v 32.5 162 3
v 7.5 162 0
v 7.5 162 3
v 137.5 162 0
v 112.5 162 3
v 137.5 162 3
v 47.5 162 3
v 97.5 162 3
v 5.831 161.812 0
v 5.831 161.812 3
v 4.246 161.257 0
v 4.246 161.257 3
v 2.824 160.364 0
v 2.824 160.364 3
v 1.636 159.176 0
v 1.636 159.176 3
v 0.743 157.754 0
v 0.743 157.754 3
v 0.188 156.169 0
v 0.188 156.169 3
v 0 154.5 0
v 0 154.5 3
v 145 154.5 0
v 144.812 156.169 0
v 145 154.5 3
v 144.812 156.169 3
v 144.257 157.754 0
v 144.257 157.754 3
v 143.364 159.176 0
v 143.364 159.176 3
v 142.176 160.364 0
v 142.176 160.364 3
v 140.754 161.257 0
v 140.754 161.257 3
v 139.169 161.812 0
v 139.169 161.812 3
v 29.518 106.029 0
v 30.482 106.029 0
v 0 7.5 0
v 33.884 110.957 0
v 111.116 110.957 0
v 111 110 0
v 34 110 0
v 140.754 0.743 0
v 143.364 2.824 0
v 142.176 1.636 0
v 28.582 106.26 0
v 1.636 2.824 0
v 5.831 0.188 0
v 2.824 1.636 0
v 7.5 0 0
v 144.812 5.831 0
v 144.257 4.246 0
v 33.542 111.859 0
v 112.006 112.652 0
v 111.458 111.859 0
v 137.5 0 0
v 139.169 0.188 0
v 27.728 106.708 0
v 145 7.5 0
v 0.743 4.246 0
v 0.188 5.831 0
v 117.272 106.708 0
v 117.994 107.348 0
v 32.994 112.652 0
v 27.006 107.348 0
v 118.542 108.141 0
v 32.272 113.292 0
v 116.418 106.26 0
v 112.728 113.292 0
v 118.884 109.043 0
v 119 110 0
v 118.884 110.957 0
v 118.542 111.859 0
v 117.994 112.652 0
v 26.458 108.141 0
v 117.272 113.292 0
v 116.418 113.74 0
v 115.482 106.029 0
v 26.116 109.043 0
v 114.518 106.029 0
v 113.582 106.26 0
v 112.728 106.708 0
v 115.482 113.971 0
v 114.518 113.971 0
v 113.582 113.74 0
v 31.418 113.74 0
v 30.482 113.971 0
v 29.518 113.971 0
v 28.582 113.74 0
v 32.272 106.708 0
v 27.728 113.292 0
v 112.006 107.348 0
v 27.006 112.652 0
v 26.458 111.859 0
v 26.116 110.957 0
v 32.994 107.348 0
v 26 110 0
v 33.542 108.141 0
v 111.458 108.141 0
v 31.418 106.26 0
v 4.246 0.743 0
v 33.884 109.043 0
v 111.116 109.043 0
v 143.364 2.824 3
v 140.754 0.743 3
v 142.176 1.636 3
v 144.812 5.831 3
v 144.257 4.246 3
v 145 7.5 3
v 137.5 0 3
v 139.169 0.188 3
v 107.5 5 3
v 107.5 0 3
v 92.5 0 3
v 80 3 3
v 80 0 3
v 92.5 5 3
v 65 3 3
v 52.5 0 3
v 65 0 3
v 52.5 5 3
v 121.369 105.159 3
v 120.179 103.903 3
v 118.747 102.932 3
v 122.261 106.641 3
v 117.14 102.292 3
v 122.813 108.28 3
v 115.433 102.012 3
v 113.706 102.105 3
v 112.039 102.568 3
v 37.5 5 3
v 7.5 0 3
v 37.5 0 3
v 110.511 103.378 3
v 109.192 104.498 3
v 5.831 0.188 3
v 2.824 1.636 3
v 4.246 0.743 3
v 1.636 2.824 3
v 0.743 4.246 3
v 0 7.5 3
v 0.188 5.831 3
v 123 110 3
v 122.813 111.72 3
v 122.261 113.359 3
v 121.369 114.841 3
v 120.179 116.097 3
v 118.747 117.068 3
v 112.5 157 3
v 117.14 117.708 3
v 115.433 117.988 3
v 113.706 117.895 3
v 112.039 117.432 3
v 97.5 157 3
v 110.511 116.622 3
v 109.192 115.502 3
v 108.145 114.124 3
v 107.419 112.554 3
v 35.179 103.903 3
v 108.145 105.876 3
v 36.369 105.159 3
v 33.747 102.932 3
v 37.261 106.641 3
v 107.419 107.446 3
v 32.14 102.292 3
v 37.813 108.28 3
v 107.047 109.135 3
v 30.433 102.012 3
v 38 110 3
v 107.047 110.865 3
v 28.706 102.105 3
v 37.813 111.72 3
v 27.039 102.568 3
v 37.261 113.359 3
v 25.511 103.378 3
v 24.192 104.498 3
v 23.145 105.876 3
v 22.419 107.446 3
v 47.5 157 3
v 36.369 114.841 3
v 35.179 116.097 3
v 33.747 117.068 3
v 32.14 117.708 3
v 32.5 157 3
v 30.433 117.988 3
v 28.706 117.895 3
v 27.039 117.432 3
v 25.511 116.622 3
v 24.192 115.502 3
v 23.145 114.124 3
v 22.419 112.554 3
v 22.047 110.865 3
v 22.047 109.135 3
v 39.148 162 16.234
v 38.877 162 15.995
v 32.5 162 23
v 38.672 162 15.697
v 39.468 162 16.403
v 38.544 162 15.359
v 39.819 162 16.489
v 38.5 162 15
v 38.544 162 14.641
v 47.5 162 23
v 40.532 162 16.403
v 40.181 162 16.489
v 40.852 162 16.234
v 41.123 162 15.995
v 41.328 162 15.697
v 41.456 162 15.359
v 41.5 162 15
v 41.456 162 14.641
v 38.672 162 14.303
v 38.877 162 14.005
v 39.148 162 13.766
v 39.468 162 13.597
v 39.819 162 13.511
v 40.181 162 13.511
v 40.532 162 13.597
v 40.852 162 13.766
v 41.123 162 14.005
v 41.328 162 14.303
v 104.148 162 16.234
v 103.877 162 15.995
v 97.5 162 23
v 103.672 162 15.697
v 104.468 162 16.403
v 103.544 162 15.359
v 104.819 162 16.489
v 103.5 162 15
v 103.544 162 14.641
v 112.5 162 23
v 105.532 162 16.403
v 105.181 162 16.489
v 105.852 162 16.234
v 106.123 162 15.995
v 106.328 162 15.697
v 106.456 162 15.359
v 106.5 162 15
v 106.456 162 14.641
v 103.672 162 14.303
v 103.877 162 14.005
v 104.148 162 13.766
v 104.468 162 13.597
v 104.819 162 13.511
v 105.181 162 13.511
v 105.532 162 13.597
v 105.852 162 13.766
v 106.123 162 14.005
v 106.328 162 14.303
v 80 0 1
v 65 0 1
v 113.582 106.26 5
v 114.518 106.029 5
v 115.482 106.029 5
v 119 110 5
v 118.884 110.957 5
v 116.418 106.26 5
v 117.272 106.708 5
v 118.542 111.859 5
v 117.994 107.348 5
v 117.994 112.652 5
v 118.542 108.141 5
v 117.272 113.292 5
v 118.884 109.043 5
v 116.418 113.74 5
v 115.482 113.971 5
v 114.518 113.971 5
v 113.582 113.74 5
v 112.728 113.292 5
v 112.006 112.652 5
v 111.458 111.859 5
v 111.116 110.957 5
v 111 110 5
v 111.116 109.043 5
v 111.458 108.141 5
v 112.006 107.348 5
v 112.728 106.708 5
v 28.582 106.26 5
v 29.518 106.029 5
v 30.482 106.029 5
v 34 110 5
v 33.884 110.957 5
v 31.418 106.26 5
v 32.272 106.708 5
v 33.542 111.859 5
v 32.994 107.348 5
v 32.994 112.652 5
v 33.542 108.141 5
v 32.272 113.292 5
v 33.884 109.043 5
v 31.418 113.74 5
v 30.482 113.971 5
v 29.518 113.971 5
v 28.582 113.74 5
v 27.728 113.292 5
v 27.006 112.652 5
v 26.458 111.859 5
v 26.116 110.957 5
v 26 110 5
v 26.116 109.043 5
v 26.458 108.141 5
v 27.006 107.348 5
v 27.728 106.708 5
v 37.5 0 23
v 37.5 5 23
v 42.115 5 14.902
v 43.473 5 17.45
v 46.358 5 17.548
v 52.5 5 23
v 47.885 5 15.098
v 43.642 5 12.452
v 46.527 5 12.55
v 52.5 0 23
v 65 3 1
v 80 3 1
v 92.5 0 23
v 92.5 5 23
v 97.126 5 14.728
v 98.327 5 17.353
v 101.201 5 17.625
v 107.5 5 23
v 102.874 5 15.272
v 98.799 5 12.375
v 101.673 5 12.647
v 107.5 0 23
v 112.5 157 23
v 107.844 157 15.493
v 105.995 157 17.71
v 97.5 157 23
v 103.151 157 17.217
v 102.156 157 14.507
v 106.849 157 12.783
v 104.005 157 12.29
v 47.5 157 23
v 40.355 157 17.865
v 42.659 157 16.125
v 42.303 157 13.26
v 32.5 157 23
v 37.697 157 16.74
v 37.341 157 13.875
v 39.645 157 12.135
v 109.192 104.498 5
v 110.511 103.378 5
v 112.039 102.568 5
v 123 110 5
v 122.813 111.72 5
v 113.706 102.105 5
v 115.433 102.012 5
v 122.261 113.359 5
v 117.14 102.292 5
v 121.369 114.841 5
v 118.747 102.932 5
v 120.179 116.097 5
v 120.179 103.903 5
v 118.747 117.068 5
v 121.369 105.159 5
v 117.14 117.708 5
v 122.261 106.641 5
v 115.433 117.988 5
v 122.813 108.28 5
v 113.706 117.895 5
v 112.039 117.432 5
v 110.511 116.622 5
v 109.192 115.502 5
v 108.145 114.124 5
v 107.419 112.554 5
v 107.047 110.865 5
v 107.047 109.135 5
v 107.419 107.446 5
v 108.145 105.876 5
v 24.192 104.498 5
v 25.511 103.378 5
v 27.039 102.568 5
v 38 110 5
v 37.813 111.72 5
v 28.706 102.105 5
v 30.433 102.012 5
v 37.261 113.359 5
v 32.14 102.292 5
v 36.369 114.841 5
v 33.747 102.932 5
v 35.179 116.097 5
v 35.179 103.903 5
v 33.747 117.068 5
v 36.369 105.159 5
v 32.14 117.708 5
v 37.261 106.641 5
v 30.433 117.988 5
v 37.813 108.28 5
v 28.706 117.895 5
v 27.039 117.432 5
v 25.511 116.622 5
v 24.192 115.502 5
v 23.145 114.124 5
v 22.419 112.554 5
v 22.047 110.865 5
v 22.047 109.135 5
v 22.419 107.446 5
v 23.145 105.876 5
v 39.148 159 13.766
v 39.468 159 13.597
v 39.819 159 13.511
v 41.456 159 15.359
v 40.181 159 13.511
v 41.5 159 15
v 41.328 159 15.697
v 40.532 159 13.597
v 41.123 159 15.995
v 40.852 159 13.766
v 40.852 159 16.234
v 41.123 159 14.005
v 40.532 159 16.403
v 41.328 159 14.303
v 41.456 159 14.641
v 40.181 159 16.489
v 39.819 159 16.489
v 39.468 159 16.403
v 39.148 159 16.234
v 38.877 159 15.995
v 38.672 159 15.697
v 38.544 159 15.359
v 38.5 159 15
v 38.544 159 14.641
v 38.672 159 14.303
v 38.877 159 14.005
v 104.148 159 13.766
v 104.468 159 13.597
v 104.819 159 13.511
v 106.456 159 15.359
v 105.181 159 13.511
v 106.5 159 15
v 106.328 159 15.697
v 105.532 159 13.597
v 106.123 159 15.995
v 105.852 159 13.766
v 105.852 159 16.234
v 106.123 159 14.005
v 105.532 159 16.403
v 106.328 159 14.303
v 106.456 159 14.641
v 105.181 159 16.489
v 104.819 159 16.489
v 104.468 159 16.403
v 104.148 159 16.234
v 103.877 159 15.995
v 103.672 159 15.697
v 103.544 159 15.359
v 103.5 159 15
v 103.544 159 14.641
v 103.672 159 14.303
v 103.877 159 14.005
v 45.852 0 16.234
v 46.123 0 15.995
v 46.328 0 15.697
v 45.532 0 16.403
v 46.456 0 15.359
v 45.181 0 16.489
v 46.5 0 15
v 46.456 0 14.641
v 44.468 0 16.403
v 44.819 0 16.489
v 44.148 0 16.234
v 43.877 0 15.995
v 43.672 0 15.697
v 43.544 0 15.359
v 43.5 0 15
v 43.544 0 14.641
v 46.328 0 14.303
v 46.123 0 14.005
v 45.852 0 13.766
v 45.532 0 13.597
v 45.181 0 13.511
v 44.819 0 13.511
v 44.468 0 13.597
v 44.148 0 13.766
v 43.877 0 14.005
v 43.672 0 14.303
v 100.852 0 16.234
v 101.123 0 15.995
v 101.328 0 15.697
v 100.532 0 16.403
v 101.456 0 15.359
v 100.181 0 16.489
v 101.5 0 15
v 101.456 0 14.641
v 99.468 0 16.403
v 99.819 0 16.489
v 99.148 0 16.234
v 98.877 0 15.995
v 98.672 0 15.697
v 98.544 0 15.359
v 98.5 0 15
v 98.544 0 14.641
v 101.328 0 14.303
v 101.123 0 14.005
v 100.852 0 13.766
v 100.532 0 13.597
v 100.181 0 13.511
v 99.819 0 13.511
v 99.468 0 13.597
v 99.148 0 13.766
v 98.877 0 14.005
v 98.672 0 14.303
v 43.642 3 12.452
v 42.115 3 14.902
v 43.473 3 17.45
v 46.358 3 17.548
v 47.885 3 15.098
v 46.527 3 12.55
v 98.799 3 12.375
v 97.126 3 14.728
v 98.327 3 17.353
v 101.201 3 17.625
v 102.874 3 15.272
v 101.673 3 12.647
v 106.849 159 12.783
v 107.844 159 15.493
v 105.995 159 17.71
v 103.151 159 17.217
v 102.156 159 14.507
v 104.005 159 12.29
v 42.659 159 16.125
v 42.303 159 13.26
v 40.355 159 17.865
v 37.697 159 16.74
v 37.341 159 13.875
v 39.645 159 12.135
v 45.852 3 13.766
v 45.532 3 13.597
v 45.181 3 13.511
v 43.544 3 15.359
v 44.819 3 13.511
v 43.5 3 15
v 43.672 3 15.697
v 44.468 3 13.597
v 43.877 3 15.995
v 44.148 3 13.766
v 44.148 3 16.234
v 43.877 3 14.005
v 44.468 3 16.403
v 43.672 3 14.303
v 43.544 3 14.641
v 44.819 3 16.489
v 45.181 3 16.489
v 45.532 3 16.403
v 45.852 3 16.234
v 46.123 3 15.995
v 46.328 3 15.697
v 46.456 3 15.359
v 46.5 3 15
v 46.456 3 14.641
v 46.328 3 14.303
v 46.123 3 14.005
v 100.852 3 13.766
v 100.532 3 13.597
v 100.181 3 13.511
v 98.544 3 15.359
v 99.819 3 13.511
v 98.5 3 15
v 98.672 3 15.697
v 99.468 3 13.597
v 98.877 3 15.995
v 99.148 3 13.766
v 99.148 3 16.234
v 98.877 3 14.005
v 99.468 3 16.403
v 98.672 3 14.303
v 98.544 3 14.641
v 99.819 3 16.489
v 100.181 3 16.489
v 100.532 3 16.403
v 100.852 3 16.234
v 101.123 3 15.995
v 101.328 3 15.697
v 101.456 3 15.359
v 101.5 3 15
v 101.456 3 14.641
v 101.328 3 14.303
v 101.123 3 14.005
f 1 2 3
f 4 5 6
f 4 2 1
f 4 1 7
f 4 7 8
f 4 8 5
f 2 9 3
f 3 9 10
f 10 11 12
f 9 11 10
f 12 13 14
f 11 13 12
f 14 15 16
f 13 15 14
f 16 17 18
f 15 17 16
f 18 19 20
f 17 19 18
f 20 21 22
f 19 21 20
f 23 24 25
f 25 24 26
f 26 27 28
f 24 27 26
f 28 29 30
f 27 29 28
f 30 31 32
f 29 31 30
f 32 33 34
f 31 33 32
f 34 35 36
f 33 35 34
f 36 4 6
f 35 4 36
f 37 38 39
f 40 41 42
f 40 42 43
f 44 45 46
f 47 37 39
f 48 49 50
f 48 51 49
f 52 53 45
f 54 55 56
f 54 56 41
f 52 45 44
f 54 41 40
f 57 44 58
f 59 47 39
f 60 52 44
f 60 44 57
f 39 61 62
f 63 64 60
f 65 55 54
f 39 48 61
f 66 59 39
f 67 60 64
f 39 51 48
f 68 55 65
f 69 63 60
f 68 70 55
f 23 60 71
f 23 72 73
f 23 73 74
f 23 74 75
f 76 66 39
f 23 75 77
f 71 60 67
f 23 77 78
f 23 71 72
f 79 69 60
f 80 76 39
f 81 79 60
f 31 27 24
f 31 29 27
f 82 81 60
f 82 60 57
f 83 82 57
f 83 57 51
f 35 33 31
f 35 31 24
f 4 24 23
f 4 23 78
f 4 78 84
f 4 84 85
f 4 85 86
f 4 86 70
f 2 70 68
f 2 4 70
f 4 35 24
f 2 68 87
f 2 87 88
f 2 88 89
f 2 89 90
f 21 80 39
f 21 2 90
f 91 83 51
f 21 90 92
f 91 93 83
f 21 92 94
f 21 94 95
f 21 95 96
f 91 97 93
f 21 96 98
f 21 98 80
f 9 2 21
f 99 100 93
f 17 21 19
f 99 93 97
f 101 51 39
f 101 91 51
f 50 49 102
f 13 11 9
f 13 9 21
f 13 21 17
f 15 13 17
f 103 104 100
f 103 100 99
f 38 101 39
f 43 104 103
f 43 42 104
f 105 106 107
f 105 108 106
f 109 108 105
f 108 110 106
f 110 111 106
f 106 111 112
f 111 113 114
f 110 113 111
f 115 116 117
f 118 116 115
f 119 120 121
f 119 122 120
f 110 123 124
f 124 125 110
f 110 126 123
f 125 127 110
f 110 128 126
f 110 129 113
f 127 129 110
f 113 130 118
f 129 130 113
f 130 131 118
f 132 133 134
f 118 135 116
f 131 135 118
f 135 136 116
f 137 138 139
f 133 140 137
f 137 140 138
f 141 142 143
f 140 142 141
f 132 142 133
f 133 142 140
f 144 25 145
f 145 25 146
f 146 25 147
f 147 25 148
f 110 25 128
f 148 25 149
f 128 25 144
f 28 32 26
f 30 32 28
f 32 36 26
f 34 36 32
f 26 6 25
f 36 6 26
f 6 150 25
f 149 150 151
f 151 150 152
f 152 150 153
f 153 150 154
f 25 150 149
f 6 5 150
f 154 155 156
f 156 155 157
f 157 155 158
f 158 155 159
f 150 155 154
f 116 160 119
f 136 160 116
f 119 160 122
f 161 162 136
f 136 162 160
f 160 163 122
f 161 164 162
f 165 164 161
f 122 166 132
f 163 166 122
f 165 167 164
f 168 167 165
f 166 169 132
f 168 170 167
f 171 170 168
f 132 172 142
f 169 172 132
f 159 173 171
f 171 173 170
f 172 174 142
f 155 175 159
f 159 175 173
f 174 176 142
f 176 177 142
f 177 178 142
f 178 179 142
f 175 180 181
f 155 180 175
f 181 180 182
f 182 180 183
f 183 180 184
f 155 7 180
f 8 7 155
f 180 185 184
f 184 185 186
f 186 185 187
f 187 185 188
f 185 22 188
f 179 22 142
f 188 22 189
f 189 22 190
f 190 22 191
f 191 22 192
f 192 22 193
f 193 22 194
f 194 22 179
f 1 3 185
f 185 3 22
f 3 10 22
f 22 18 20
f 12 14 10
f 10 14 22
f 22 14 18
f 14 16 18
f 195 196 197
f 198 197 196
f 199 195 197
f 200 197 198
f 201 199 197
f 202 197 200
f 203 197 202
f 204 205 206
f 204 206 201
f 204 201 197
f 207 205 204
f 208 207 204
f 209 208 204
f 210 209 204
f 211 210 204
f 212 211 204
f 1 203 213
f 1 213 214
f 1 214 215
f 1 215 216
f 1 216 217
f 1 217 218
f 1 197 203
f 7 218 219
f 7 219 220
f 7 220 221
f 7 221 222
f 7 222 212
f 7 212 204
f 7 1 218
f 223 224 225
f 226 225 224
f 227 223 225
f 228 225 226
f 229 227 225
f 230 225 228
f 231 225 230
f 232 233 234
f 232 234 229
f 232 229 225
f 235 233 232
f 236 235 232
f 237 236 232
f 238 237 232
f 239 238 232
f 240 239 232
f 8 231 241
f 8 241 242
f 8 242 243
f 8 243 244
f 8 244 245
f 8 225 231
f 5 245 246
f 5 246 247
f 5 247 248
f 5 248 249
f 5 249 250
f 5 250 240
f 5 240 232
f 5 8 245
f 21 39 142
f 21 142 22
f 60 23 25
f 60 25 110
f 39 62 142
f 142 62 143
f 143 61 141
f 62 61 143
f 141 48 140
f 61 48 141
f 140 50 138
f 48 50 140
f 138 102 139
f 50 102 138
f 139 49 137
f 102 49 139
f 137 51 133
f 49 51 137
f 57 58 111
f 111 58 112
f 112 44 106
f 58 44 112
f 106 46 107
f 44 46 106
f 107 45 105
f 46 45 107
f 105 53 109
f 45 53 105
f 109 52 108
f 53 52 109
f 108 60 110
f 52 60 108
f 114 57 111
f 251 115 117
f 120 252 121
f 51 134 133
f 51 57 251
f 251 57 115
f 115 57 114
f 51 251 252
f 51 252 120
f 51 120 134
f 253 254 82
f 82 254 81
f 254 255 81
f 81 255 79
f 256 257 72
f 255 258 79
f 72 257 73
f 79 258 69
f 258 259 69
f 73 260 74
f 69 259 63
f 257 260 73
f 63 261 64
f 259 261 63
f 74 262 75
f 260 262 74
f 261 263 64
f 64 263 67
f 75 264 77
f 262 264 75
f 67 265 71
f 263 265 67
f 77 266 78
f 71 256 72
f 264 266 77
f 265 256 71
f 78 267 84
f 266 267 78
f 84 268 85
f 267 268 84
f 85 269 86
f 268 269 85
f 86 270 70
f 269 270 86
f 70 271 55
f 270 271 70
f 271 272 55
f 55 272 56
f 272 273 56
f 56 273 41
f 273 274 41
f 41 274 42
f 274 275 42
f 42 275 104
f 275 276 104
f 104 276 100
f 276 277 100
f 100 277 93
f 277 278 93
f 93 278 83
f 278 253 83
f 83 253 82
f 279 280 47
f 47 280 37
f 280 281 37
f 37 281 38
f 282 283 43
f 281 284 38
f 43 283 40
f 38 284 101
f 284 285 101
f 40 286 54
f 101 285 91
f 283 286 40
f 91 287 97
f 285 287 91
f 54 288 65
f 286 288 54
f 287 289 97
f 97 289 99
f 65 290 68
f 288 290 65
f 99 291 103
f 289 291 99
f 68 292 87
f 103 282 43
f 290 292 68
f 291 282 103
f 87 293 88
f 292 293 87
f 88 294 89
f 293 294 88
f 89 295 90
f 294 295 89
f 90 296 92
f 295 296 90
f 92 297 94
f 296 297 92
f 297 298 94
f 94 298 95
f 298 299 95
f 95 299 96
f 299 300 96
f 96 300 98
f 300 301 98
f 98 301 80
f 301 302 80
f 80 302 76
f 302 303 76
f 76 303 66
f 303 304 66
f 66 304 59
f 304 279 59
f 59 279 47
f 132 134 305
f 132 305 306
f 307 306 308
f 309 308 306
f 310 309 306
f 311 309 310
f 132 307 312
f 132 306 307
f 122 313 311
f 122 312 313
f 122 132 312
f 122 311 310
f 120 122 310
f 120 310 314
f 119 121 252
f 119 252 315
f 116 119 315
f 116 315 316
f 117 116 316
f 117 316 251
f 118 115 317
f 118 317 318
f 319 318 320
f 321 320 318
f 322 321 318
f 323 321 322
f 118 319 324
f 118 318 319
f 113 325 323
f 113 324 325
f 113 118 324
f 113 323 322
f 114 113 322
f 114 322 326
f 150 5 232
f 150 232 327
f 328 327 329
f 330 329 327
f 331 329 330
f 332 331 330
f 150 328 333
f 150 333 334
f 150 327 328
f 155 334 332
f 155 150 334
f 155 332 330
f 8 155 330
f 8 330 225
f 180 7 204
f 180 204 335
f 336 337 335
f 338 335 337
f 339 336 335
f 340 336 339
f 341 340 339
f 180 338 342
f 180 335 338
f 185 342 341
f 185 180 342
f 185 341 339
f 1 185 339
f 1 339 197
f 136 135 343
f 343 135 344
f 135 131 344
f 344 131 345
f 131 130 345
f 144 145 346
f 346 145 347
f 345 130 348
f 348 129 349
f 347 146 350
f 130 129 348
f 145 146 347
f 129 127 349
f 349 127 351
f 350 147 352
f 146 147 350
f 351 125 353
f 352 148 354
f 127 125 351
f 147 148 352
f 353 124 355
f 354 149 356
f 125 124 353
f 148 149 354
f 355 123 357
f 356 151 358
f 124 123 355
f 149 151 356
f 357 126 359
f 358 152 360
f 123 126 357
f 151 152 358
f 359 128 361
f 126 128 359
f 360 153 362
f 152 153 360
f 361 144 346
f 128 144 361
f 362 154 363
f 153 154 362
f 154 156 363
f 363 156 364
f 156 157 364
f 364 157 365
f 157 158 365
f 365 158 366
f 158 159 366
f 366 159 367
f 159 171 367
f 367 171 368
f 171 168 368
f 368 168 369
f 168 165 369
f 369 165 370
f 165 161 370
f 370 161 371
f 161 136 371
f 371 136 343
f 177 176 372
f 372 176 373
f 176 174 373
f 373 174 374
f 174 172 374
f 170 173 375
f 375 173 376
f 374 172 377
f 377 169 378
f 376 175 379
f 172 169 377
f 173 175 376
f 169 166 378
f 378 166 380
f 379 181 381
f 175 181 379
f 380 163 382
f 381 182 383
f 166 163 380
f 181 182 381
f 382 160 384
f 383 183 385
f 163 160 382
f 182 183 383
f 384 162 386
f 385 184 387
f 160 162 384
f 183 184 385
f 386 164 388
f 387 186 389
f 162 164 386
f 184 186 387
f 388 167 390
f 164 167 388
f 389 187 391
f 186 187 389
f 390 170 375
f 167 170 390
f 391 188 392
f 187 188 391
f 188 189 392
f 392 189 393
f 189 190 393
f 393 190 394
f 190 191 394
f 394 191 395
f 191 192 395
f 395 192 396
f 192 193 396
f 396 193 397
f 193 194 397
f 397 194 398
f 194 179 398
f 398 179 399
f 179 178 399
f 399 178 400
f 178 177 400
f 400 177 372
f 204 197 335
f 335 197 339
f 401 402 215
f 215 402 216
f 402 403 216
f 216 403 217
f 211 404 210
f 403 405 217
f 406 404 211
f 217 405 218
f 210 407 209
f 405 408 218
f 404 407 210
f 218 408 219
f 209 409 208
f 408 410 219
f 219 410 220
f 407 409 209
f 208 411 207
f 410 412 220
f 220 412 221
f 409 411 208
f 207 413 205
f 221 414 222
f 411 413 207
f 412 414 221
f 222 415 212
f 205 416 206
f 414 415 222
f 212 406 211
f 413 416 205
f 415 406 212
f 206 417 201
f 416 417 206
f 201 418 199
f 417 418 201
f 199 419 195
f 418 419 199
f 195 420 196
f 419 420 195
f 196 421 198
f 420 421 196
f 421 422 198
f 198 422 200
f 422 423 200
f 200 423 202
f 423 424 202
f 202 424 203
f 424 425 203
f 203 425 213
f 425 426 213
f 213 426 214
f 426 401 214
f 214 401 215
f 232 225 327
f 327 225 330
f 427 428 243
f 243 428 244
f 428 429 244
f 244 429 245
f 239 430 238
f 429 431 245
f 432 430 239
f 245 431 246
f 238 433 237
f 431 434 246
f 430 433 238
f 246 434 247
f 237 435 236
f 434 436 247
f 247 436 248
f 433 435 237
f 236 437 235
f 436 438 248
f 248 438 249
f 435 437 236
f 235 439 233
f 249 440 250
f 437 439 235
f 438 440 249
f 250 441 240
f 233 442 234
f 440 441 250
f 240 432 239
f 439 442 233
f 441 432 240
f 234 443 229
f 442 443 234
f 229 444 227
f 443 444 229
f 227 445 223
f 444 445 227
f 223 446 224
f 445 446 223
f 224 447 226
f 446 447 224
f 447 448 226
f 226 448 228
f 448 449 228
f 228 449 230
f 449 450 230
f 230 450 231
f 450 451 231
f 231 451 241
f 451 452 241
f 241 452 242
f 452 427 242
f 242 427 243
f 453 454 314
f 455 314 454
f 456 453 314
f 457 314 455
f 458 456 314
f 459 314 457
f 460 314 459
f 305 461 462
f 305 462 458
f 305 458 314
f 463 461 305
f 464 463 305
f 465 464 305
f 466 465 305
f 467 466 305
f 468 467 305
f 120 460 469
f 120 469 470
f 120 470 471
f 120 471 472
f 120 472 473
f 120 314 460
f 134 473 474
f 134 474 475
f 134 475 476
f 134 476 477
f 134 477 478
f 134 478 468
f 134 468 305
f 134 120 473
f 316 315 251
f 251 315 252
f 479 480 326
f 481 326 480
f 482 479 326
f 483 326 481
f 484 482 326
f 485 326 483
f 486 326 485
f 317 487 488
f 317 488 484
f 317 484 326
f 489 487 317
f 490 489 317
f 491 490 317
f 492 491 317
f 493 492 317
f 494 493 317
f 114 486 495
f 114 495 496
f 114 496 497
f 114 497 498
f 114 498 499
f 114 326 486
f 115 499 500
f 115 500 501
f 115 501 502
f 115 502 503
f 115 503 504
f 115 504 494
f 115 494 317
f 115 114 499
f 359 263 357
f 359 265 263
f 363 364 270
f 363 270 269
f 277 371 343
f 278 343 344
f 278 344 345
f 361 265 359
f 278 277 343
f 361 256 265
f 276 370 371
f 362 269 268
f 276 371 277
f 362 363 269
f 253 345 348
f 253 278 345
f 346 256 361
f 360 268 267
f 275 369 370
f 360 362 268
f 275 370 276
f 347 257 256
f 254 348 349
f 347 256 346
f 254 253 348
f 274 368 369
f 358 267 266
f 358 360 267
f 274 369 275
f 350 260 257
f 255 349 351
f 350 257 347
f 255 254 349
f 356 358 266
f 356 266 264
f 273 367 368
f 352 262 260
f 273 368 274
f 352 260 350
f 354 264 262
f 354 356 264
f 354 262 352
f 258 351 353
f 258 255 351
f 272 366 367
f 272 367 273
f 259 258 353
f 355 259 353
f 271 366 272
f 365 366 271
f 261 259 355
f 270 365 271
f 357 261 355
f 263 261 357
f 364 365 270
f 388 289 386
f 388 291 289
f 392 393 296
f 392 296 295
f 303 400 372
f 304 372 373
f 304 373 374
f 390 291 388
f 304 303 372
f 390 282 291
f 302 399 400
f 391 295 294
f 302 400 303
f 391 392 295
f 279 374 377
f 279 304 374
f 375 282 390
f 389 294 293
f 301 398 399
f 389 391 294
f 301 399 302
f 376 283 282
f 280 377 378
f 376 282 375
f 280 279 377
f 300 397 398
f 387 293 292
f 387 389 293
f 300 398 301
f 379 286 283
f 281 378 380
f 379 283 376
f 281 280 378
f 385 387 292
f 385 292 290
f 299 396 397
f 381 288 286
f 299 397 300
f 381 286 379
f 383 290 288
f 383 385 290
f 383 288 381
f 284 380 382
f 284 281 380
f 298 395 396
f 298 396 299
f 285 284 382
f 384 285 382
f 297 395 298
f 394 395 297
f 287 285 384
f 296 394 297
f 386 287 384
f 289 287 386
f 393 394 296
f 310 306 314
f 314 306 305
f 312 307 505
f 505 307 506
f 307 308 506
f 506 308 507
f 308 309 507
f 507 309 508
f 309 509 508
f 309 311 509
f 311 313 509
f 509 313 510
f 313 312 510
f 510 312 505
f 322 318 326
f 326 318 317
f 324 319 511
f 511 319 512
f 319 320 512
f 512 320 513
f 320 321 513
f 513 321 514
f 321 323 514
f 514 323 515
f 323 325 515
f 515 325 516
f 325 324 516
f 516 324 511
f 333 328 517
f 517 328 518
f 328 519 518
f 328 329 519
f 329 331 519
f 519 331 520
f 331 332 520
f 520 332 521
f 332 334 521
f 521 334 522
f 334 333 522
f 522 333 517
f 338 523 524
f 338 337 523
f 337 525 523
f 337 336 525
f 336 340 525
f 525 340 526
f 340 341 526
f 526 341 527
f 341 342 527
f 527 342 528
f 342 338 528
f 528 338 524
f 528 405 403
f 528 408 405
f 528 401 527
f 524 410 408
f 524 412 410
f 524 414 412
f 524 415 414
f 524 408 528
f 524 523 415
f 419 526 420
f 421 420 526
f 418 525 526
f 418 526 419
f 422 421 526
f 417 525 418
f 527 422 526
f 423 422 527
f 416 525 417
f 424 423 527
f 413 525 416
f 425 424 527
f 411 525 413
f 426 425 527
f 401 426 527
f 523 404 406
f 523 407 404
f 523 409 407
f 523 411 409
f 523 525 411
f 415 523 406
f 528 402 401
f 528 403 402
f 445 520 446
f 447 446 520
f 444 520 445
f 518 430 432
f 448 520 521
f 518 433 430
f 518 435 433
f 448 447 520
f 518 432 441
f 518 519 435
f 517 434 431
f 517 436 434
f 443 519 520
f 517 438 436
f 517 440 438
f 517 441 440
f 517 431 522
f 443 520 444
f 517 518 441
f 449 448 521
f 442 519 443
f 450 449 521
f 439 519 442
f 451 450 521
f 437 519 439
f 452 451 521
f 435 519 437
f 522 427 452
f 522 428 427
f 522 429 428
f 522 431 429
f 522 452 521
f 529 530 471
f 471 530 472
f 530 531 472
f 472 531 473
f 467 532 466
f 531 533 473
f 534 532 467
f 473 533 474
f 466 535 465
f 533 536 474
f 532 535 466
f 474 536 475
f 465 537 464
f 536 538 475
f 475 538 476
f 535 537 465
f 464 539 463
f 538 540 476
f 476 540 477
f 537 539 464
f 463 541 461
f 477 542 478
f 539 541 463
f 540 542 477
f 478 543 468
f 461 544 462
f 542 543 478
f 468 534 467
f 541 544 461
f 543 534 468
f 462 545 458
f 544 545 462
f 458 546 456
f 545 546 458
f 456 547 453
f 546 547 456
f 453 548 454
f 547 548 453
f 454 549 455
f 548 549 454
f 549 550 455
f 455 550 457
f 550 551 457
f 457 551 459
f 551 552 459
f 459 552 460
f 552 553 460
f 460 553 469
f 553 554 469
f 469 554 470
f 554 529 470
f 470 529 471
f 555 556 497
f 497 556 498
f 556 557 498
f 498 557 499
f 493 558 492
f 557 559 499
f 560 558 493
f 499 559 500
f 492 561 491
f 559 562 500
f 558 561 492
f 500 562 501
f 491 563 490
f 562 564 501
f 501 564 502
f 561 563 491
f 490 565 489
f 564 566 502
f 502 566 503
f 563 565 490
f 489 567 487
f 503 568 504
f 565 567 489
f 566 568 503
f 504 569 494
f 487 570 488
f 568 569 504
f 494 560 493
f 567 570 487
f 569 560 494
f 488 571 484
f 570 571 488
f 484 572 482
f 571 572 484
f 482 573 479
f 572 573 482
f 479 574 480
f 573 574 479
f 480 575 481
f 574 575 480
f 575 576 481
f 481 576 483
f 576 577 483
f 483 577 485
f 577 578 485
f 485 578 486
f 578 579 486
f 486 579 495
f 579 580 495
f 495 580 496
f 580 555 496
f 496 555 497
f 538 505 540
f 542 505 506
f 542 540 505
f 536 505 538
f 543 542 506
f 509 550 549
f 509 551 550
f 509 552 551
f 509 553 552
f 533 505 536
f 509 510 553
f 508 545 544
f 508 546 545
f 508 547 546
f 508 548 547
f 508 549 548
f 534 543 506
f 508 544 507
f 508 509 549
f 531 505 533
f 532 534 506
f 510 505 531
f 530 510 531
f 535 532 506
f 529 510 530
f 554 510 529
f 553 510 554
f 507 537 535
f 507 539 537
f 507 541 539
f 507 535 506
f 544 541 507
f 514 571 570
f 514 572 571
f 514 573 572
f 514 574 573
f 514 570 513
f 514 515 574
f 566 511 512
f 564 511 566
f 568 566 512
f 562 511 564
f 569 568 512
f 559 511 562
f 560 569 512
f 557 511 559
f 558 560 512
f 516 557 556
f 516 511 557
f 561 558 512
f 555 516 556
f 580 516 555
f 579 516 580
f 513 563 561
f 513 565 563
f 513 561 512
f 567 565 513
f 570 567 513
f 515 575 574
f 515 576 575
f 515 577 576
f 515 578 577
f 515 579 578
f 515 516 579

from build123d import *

# Parameters (mm, degrees)
PAD_DEPTH       = 3
SKETCH001_W     = 15
SKETCH001_H     = 3
POCKET_DEPTH    = 2
SKETCH002_R     = 8
PAD001_DEPTH    = 2
SKETCH003_R     = 4
POCKET001_DEPTH = 5
SKETCH004_W     = 15
SKETCH004_H     = 5
PAD002_DEPTH    = 20
POCKET002_DEPTH = 2
SKETCH006_R     = 1.5
POCKET003_DEPTH = 5
POCKET004_DEPTH = 2
SKETCH008_R     = 1.5
POCKET005_DEPTH = 5


with BuildPart() as part:
    # Sketch → Pad (new body)
    with BuildSketch(Plane.XY):
        with BuildLine():
            Line((7.5, 162), (137.5, 162))
            ThreePointArc((145, 154.5), (142.803301, 159.803301), (137.5, 162))
            Line((145, 154.5), (145, 7.5))
            ThreePointArc((137.5, 0), (142.803301, 2.196699), (145, 7.5))
            Line((137.5, 0), (7.5, 0))
            ThreePointArc((0, 7.5), (2.196699, 2.196699), (7.5, 0))
            Line((0, 7.5), (0, 154.5))
            ThreePointArc((7.5, 162), (2.196699, 159.803301), (0, 154.5))
        make_face()
    extrude(amount=PAD_DEPTH)

    # Sketch001 (on Face10 of Pad) → Pocket (cut)
    with BuildSketch(Plane.XY.offset(3)):
        with Locations((72.5, 1.5)):
            Rectangle(SKETCH001_W, SKETCH001_H)
    extrude(amount=-POCKET_DEPTH, mode=Mode.SUBTRACT)

    # Sketch002 (on Face5 of Pocket) → Pad001 (join)
    with BuildSketch(Plane.XY.offset(3)):
        with Locations((30, 110)):
            Circle(SKETCH002_R)
        with Locations((115, 110)):
            Circle(SKETCH002_R)
    extrude(amount=PAD001_DEPTH)

    # Sketch003 (on Face18 of Pad001) → Pocket001 (cut)
    with BuildSketch(Plane.XY.offset(5)):
        with Locations((30, 110)):
            Circle(SKETCH003_R)
        with Locations((115, 110)):
            Circle(SKETCH003_R)
    extrude(amount=-POCKET001_DEPTH, mode=Mode.SUBTRACT)

    # Sketch004 (on Face5 of Pocket001) → Pad002 (join)
    with BuildSketch(Plane.XY.offset(3)):
        with Locations((45, 2.5)):
            Rectangle(SKETCH004_W, SKETCH004_H)
        with Locations((100, 2.5)):
            Rectangle(SKETCH004_W, SKETCH004_H)
        with Locations((40, 159.5)):
            Rectangle(SKETCH004_W, SKETCH004_H)
        with Locations((105, 159.5)):
            Rectangle(SKETCH004_W, SKETCH004_H)
    extrude(amount=PAD002_DEPTH)

    # Sketch005 (on Face22 of Pad002) → Pocket002 (cut)
    with BuildSketch(Plane(origin=(0, 5, 0), x_dir=(-1, 0, 0), z_dir=(0, 1, 0))):
        Polygon((-98.798643, 12.375105), (-97.126096, 14.727958), (-98.327452, 17.352853), (-101.201357, 17.624895), (-102.873904, 15.272042), (-101.672548, 12.647147), align=None)
        Polygon((-43.642398, 12.452403), (-42.114915, 14.901919), (-43.472517, 17.449516), (-46.357602, 17.547597), (-47.885085, 15.098081), (-46.527483, 12.550484), align=None)
    extrude(amount=-POCKET002_DEPTH, mode=Mode.SUBTRACT)

    # Sketch006 (on Face22 of Pocket002) → Pocket003 (cut)
    with BuildSketch(Plane(origin=(0, 5, 0), x_dir=(-1, 0, 0), z_dir=(0, 1, 0))):
        with Locations((-100, 15)):
            Circle(SKETCH006_R)
        with Locations((-45, 15)):
            Circle(SKETCH006_R)
    extrude(amount=-POCKET003_DEPTH, mode=Mode.SUBTRACT)

    # Sketch007 (on Face25 of Pocket003) → Pocket004 (cut)
    with BuildSketch(Plane.XZ.offset(-157)):
        Polygon((42.303268, 13.259802), (42.65869, 16.124589), (40.355422, 17.864788), (37.696732, 16.740198), (37.34131, 13.875411), (39.644578, 12.135212), align=None)
        Polygon((106.849162, 12.783261), (107.844334, 15.493051), (105.995172, 17.709791), (103.150838, 17.216739), (102.155666, 14.506949), (104.004828, 12.290209), align=None)
    extrude(amount=-POCKET004_DEPTH, mode=Mode.SUBTRACT)

    # Sketch008 (on Face25 of Pocket004) → Pocket005 (cut)
    with BuildSketch(Plane.XZ.offset(-157)):
        with Locations((40, 15)):
            Circle(SKETCH008_R)
        with Locations((105, 15)):
            Circle(SKETCH008_R)
    extrude(amount=-POCKET005_DEPTH, mode=Mode.SUBTRACT)


solid = part.part
